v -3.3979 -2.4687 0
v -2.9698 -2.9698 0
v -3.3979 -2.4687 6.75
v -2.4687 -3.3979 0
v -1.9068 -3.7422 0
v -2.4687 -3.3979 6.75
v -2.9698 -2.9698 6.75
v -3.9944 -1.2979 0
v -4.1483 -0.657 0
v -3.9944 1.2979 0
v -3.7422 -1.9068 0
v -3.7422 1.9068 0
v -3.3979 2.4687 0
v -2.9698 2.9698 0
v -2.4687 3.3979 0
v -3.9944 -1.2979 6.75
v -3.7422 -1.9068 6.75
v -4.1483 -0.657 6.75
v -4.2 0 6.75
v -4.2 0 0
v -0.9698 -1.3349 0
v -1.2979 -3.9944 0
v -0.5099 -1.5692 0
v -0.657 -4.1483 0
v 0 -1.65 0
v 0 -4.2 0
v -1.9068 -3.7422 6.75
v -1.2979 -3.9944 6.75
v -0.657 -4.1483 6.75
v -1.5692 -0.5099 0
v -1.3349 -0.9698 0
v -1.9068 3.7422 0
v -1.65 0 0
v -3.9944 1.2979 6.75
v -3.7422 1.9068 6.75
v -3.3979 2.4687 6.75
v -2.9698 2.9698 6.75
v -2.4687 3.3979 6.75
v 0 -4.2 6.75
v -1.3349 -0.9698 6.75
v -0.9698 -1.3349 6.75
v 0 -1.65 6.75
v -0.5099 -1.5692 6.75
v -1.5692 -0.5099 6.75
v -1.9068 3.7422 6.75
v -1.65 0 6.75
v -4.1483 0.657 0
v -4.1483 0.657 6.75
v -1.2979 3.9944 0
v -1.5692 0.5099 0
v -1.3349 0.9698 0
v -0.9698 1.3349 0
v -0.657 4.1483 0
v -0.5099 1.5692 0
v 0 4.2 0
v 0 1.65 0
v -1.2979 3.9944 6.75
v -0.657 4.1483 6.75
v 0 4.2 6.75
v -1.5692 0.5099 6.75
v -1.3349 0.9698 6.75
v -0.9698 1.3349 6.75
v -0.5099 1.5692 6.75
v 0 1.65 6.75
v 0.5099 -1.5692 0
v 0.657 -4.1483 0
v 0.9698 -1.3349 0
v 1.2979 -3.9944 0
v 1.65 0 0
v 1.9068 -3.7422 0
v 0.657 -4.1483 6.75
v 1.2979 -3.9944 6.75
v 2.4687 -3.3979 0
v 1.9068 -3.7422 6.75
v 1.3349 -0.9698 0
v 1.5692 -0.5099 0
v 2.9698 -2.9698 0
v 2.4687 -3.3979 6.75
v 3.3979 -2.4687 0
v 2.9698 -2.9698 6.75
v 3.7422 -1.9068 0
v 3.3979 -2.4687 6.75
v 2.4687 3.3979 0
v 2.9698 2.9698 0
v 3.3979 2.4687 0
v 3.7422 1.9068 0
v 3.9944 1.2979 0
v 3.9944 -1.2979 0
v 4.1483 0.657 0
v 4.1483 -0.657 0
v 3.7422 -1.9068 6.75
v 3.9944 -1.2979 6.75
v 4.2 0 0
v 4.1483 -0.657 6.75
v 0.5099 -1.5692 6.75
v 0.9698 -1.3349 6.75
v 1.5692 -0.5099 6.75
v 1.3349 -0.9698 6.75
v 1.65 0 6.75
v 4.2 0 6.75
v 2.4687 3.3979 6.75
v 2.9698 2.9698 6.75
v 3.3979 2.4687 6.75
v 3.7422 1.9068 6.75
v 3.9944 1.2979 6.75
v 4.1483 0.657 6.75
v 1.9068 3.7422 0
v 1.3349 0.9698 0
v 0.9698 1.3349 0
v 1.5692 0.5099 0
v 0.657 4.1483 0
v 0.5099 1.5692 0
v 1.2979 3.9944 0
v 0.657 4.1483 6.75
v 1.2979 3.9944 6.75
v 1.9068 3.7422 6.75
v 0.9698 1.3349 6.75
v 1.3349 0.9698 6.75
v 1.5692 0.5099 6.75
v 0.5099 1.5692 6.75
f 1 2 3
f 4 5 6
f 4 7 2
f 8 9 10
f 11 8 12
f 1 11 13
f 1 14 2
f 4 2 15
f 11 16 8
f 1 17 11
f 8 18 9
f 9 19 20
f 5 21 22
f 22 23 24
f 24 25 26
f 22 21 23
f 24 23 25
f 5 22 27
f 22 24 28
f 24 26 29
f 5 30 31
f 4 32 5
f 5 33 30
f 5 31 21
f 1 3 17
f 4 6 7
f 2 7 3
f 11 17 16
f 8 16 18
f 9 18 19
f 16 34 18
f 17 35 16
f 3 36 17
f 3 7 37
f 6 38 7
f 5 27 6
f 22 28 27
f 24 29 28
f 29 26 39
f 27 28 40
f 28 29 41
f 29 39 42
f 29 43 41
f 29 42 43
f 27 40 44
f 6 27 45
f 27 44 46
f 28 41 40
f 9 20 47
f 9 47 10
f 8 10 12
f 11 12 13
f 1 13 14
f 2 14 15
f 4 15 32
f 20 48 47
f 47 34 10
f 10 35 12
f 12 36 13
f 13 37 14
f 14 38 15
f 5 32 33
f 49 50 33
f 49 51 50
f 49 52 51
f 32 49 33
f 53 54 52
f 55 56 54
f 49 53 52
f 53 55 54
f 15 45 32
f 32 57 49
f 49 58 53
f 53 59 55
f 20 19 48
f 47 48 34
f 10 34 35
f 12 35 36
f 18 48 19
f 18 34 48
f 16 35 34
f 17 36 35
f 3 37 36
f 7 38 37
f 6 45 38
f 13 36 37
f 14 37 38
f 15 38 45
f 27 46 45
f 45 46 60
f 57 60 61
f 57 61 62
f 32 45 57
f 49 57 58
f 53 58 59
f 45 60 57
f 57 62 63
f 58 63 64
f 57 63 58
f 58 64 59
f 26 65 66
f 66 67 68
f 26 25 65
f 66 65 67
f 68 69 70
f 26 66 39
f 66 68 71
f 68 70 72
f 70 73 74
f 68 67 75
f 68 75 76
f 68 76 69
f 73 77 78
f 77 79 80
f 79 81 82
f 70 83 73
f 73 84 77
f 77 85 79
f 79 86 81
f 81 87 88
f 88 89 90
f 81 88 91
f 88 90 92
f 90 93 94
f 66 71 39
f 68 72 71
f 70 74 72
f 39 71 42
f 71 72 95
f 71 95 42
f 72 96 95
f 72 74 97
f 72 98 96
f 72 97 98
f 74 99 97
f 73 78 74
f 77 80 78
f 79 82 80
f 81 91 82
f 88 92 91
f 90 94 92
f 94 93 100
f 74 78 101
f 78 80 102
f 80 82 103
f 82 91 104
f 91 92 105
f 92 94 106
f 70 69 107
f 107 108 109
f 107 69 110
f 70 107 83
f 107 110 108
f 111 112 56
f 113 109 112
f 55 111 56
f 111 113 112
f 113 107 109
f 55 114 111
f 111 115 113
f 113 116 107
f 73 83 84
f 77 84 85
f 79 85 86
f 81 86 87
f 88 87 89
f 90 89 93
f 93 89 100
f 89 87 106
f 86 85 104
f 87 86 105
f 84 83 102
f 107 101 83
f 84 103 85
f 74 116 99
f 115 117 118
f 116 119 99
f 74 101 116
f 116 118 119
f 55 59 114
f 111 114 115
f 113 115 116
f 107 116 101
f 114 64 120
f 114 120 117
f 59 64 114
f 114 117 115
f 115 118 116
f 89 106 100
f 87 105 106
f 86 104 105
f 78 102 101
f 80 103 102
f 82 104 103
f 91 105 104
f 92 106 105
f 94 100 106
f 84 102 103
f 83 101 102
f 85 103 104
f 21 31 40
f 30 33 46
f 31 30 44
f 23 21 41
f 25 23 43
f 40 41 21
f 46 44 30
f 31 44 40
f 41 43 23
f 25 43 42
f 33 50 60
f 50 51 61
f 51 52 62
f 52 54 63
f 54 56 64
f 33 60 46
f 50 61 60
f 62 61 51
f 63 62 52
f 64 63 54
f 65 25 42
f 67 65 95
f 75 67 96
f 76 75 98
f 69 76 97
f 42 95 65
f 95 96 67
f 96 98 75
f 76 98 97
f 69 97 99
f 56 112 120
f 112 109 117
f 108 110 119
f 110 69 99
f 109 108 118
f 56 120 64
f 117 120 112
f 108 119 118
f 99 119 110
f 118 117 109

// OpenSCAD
// H10b_spool  (qty 1; frame: local; MJF PA12 or PETG)
// GENERATED by gen_halo_stl.py from halo_parts.py. Change numbers in halo_params.scad.
// Every dimension below is an expression of the names in halo_params.scad.
include <../halo_params.scad>

difference() {
    cylinder(h = CF_W + 0.4, r = CF_SPOOL_D / 2 - 0.2, center = false, $fn = 40);
    translate([0, 0, -1]) {
        cylinder(h = CF_W + 3, r = 1.65, center = false, $fn = 20);
    }
}
